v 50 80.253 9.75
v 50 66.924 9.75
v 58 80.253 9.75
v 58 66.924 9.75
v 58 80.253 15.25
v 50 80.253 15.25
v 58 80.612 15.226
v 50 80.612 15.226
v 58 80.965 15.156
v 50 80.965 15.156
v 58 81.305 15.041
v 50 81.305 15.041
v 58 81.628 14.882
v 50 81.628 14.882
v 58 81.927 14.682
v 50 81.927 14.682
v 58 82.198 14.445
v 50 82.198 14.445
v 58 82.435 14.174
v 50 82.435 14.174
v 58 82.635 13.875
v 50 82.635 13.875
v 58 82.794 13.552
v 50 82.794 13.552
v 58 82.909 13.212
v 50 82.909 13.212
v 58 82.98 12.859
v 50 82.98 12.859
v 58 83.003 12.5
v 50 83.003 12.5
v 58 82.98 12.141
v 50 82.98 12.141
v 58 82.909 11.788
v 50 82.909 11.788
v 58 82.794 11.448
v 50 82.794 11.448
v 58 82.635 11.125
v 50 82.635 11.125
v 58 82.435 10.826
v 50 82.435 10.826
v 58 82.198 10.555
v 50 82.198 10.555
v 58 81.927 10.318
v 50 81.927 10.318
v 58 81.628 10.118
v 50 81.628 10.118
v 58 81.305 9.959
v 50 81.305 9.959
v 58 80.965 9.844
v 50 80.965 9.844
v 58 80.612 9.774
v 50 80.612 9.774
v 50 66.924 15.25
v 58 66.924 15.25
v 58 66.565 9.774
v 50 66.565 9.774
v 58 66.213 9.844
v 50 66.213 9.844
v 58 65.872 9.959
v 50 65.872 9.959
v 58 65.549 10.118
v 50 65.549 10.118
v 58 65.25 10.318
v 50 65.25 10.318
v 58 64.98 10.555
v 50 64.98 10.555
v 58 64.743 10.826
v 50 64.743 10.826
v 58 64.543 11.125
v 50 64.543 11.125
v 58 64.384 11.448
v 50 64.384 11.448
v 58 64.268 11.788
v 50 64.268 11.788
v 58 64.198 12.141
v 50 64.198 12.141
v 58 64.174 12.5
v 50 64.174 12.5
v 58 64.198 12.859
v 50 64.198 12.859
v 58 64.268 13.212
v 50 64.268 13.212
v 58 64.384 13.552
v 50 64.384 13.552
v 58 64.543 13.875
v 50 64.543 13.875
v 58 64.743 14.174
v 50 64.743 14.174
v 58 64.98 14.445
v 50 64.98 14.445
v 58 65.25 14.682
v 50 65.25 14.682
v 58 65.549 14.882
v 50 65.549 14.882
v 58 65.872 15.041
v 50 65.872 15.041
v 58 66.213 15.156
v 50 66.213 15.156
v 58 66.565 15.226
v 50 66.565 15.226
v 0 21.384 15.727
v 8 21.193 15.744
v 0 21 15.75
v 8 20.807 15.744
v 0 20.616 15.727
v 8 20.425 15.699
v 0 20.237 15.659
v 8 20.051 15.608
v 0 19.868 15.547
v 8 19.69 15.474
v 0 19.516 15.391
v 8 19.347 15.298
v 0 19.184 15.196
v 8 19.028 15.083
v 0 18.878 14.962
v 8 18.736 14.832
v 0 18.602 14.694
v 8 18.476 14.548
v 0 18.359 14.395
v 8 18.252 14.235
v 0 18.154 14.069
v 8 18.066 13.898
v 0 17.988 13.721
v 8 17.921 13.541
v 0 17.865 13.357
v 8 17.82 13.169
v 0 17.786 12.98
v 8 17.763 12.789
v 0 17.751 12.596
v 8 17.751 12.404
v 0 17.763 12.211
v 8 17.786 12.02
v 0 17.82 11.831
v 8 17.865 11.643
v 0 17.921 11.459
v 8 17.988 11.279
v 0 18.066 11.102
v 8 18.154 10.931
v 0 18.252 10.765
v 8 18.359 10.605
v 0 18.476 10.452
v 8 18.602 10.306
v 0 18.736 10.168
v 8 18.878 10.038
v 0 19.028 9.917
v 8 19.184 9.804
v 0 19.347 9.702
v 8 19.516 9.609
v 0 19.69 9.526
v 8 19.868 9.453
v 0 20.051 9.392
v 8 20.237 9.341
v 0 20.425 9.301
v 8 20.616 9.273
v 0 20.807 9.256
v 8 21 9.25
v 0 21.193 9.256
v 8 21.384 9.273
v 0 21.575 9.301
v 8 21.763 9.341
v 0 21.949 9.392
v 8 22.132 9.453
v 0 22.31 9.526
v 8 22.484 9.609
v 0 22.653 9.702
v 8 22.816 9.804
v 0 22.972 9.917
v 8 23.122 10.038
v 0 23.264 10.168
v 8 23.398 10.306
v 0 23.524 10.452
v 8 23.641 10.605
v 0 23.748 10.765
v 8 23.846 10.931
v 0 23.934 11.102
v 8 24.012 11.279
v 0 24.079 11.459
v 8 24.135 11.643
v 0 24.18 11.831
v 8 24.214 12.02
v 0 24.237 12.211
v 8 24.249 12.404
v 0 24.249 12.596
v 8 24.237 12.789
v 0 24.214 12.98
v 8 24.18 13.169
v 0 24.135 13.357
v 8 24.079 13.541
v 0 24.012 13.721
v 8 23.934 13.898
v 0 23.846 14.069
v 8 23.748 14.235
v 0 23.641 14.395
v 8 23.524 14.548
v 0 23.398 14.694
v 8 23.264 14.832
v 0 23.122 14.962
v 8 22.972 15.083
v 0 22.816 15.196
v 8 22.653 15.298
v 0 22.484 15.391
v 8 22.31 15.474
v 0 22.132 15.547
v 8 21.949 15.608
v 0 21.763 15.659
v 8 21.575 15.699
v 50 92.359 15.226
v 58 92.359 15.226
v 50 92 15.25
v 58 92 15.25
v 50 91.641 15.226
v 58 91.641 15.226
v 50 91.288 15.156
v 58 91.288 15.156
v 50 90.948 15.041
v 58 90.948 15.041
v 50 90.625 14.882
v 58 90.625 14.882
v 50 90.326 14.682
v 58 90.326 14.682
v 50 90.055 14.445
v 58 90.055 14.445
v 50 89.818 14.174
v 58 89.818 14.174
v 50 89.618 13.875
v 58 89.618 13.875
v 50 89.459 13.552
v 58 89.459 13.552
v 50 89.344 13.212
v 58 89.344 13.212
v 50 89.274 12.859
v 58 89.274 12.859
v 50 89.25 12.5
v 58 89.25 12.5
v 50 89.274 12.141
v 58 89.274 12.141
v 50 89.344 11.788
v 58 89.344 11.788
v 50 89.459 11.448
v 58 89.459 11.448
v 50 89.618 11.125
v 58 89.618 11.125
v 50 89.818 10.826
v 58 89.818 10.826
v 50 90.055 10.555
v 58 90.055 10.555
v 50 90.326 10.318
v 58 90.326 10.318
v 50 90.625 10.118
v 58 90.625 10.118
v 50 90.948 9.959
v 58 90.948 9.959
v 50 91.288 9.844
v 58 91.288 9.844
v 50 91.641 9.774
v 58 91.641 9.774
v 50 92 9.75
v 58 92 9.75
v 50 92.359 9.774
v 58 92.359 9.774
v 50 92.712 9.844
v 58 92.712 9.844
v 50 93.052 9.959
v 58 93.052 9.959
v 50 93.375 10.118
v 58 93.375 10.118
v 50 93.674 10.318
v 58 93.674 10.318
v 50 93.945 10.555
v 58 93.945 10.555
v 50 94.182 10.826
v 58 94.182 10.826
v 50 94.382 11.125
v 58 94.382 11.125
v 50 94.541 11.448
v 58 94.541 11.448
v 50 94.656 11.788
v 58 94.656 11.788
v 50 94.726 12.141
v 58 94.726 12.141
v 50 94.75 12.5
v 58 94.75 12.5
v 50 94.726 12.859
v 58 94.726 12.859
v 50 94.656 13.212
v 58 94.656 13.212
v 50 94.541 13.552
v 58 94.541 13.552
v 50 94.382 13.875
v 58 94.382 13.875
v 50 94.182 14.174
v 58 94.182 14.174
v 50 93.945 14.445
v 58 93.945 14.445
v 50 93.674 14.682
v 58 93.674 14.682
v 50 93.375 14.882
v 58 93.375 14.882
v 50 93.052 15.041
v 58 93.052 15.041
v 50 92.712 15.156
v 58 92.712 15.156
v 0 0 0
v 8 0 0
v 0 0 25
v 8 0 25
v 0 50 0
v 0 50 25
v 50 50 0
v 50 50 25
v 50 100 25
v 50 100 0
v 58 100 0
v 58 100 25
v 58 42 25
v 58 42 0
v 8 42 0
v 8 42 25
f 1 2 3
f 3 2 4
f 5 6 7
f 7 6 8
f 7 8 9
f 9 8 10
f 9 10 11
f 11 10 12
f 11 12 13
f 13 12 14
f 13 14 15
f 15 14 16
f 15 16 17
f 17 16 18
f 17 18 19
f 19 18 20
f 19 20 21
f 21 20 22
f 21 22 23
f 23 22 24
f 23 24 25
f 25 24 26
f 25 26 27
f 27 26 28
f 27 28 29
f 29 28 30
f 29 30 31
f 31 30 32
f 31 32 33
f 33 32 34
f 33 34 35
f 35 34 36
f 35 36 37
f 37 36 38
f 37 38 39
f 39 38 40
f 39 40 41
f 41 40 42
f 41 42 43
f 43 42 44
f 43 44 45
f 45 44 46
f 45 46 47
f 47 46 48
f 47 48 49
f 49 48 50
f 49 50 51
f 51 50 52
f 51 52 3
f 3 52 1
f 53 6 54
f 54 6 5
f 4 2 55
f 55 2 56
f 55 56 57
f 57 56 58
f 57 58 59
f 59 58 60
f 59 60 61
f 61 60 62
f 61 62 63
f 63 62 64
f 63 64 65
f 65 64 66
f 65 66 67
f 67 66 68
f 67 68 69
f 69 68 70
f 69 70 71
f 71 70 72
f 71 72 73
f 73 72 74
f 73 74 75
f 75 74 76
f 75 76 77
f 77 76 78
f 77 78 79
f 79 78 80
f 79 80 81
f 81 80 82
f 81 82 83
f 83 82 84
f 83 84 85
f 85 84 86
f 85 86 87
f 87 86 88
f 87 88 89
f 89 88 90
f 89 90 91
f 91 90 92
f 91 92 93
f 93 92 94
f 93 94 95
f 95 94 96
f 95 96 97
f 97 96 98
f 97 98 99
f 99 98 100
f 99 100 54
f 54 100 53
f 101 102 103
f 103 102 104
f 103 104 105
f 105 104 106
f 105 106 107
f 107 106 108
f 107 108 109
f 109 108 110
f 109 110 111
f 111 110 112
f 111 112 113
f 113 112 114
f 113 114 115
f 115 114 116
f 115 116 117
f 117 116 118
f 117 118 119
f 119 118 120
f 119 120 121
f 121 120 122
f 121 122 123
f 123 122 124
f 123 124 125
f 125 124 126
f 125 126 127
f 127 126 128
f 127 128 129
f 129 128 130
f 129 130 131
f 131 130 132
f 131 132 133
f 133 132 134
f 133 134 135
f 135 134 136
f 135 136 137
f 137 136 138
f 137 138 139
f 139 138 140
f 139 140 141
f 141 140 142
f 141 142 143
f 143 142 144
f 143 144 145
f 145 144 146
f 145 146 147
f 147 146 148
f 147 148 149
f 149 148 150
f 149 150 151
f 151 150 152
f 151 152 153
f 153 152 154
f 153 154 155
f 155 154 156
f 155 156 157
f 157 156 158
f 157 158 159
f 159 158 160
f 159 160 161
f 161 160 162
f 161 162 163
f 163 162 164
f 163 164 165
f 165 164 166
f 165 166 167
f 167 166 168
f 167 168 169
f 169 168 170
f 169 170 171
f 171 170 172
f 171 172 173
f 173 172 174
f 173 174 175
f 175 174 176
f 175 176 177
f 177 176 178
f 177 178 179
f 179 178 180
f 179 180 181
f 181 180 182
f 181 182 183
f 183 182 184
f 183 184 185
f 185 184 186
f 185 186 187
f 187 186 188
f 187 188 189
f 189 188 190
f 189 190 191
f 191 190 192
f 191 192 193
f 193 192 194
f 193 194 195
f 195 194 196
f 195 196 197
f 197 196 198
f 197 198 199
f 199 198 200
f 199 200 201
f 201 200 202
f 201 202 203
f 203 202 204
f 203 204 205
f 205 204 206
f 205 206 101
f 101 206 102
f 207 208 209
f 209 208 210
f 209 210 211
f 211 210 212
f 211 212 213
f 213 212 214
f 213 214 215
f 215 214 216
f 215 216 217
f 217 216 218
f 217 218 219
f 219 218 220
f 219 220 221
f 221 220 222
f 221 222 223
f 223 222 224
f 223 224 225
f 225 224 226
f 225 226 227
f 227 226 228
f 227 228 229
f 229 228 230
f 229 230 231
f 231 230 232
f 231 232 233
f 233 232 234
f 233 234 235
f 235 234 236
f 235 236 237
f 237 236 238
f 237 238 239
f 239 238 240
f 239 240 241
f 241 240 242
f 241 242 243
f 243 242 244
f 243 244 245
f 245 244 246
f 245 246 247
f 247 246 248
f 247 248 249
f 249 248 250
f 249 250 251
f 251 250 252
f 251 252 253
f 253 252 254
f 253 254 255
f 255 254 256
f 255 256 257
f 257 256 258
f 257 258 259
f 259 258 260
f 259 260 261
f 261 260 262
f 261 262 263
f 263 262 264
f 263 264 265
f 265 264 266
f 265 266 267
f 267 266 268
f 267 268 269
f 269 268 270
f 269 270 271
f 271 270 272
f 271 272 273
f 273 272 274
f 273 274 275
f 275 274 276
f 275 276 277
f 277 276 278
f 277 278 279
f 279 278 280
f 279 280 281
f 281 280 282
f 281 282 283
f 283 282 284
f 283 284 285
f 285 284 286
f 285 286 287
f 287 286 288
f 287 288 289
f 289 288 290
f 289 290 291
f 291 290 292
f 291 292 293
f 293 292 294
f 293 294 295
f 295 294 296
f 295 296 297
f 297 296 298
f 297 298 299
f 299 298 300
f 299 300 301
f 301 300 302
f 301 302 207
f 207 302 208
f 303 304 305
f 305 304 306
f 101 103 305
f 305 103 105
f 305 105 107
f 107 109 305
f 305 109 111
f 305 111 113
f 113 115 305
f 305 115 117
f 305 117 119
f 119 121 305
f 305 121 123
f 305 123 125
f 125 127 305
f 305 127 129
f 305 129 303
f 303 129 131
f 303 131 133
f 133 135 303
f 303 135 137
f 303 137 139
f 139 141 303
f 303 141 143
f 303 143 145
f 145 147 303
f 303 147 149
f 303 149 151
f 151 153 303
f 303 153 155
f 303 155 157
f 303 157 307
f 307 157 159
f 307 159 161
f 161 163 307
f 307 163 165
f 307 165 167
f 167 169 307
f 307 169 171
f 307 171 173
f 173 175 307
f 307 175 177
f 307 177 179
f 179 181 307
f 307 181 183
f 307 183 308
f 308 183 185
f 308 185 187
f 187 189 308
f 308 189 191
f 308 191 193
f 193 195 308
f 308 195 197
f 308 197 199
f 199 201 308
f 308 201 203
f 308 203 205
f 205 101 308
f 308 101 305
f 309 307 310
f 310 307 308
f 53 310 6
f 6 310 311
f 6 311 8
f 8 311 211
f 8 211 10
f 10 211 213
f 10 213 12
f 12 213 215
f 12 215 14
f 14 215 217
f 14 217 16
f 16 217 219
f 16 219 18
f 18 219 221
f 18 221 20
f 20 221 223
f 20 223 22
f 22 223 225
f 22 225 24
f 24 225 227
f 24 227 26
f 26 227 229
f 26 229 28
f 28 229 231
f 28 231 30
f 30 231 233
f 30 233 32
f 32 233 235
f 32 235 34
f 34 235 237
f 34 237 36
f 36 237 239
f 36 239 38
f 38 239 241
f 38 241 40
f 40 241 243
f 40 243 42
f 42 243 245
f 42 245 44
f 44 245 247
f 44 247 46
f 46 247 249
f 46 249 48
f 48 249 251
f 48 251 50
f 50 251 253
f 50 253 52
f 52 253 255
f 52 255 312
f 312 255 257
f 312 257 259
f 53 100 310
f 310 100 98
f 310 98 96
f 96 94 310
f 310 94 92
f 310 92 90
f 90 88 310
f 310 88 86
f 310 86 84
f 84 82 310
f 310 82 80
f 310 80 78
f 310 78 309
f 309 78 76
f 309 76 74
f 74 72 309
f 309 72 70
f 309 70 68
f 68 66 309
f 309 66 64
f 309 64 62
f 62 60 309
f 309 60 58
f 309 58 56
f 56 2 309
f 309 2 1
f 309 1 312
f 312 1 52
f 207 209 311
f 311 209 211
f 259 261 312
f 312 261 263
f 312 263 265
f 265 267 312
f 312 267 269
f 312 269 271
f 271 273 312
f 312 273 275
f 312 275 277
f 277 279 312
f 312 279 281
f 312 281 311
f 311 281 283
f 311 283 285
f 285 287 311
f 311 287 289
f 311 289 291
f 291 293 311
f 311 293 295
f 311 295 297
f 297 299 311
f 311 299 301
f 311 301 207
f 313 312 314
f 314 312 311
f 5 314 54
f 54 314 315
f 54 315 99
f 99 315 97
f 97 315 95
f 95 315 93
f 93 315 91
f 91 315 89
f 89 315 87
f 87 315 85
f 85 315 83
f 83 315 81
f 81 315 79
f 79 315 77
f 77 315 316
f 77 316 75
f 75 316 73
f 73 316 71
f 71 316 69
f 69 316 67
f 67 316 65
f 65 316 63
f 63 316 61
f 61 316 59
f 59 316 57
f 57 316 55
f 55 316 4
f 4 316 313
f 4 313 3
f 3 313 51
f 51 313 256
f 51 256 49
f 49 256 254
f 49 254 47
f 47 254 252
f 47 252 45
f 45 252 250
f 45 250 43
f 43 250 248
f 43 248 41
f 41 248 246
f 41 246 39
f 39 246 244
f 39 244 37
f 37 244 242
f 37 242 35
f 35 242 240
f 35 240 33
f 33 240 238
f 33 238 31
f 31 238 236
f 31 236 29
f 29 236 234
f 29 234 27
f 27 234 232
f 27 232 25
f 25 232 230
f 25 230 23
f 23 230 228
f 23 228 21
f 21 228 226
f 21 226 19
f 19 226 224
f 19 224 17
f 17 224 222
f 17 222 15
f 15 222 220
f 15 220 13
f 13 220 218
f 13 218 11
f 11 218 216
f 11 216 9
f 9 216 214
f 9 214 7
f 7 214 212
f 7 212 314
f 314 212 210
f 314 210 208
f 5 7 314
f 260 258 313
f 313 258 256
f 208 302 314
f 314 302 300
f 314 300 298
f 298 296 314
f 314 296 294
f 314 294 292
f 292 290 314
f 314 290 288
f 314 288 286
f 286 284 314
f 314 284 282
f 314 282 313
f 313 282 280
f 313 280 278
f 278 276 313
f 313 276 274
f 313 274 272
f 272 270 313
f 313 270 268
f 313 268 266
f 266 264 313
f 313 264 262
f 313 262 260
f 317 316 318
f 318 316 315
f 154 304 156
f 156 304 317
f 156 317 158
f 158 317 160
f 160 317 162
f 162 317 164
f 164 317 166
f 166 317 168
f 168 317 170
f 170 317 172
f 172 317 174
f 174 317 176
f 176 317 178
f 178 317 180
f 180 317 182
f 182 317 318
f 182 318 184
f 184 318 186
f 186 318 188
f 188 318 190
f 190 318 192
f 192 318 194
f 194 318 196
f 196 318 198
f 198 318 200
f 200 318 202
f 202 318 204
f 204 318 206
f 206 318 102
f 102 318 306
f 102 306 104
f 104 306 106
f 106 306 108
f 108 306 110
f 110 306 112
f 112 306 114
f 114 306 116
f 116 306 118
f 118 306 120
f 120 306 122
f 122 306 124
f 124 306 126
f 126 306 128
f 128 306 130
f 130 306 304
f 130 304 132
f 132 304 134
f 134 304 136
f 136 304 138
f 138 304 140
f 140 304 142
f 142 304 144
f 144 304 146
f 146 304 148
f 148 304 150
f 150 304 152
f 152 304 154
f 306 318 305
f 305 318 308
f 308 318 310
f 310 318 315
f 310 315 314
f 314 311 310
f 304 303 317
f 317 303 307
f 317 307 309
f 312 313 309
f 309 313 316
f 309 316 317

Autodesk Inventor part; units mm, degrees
ref_plane "YZ Plane" through (0, 0, 0) normal (1, 0, 0) x (0, 1, 0)
ref_plane "XZ Plane" through (0, 0, 0) normal (0, 1, 0) x (-1, 0, 0)
ref_plane "XY Plane" through (0, 0, 0) normal (0, 0, 1) x (1, 0, 0)
sketch "Sketch1" plane through (0, 0, 0) normal (0, 0, 1) x (1, 0, 0)
  line L0 (0, 0) -> (0, 50)
  line L1 (0, 50) -> (50, 50)
  line L2 (50, 50) -> (50, 100)
  line L3 (50, 100) -> (58, 100)
  line L4 (58, 100) -> (58, 42)
  line L5 (58, 42) -> (8, 42)
  line L6 (8, 42) -> (8, 0)
  line L7 (8, 0) -> (0, 0)
  dimension "d0" = 50
  dimension "d1" = 50
  dimension "d2" = 50
  dimension "d3" = 8
  dimension "d4" = 58
  dimension "d6" = 50
extrude "Extrusion1" add sketch "Sketch1" along normal blind 25
sketch "Sketch2" plane through (58, 42, 0) normal (1, 0, 0) x (0, 0, -1)
  circle A0 centre (-12.5, 50) radius 2.75
  line L0 (0, 58) -> (-25, 58) projected
  line L1 (-25, 0) -> (-25, 58) projected
  point P0 (0, -42)
  dimension "d9" = 5.5
  dimension "d10" = 8
  dimension "d11" = 12.5
extrude "Extrusion2" cut sketch "Sketch2" against normal blind 25
sketch "Sketch3" plane through (8, 0, 0) normal (1, 0, 0) x (0, 0, -1)
  point P0 (0, 0)
sketch "Sketch4" plane through (8, 0, 0) normal (1, 0, 0) x (0, 0, -1)
  circle A0 centre (-12.5, 21) radius 3.25
  line L0 (0, 42) -> (-25, 42) projected
  line L1 (0, 0) -> (0, 42) projected
  dimension "d26" = 21
  dimension "d27" = 6.5
  dimension "d28" = 12.5
extrude "Extrusion3" cut sketch "Sketch4" against normal blind 25
sketch "Sketch5" plane through (58, 42, 0) normal (1, 0, 0) x (0, 0, -1)
  circle A0 centre (-12.5, 38.2531) radius 2.75
  line L0 (0, 0) -> (0, 58) projected
  circle A1 centre (-12.5, 24.9243) radius 2.75
  line L1 (-15.25, 38.2531) -> (-15.25, 24.9243)
  line L2 (-9.75, 38.2531) -> (-9.75, 24.9243)
  point P0 (0, -42)
  dimension "d31" = 5.5
  dimension "d32" = 9.75
  dimension "d33" = 5.5
extrude "Extrusion4" cut sketch "Sketch5" against normal blind 58
equation "\"d34\" = d4"
properties part number "CoilBracketMount"
